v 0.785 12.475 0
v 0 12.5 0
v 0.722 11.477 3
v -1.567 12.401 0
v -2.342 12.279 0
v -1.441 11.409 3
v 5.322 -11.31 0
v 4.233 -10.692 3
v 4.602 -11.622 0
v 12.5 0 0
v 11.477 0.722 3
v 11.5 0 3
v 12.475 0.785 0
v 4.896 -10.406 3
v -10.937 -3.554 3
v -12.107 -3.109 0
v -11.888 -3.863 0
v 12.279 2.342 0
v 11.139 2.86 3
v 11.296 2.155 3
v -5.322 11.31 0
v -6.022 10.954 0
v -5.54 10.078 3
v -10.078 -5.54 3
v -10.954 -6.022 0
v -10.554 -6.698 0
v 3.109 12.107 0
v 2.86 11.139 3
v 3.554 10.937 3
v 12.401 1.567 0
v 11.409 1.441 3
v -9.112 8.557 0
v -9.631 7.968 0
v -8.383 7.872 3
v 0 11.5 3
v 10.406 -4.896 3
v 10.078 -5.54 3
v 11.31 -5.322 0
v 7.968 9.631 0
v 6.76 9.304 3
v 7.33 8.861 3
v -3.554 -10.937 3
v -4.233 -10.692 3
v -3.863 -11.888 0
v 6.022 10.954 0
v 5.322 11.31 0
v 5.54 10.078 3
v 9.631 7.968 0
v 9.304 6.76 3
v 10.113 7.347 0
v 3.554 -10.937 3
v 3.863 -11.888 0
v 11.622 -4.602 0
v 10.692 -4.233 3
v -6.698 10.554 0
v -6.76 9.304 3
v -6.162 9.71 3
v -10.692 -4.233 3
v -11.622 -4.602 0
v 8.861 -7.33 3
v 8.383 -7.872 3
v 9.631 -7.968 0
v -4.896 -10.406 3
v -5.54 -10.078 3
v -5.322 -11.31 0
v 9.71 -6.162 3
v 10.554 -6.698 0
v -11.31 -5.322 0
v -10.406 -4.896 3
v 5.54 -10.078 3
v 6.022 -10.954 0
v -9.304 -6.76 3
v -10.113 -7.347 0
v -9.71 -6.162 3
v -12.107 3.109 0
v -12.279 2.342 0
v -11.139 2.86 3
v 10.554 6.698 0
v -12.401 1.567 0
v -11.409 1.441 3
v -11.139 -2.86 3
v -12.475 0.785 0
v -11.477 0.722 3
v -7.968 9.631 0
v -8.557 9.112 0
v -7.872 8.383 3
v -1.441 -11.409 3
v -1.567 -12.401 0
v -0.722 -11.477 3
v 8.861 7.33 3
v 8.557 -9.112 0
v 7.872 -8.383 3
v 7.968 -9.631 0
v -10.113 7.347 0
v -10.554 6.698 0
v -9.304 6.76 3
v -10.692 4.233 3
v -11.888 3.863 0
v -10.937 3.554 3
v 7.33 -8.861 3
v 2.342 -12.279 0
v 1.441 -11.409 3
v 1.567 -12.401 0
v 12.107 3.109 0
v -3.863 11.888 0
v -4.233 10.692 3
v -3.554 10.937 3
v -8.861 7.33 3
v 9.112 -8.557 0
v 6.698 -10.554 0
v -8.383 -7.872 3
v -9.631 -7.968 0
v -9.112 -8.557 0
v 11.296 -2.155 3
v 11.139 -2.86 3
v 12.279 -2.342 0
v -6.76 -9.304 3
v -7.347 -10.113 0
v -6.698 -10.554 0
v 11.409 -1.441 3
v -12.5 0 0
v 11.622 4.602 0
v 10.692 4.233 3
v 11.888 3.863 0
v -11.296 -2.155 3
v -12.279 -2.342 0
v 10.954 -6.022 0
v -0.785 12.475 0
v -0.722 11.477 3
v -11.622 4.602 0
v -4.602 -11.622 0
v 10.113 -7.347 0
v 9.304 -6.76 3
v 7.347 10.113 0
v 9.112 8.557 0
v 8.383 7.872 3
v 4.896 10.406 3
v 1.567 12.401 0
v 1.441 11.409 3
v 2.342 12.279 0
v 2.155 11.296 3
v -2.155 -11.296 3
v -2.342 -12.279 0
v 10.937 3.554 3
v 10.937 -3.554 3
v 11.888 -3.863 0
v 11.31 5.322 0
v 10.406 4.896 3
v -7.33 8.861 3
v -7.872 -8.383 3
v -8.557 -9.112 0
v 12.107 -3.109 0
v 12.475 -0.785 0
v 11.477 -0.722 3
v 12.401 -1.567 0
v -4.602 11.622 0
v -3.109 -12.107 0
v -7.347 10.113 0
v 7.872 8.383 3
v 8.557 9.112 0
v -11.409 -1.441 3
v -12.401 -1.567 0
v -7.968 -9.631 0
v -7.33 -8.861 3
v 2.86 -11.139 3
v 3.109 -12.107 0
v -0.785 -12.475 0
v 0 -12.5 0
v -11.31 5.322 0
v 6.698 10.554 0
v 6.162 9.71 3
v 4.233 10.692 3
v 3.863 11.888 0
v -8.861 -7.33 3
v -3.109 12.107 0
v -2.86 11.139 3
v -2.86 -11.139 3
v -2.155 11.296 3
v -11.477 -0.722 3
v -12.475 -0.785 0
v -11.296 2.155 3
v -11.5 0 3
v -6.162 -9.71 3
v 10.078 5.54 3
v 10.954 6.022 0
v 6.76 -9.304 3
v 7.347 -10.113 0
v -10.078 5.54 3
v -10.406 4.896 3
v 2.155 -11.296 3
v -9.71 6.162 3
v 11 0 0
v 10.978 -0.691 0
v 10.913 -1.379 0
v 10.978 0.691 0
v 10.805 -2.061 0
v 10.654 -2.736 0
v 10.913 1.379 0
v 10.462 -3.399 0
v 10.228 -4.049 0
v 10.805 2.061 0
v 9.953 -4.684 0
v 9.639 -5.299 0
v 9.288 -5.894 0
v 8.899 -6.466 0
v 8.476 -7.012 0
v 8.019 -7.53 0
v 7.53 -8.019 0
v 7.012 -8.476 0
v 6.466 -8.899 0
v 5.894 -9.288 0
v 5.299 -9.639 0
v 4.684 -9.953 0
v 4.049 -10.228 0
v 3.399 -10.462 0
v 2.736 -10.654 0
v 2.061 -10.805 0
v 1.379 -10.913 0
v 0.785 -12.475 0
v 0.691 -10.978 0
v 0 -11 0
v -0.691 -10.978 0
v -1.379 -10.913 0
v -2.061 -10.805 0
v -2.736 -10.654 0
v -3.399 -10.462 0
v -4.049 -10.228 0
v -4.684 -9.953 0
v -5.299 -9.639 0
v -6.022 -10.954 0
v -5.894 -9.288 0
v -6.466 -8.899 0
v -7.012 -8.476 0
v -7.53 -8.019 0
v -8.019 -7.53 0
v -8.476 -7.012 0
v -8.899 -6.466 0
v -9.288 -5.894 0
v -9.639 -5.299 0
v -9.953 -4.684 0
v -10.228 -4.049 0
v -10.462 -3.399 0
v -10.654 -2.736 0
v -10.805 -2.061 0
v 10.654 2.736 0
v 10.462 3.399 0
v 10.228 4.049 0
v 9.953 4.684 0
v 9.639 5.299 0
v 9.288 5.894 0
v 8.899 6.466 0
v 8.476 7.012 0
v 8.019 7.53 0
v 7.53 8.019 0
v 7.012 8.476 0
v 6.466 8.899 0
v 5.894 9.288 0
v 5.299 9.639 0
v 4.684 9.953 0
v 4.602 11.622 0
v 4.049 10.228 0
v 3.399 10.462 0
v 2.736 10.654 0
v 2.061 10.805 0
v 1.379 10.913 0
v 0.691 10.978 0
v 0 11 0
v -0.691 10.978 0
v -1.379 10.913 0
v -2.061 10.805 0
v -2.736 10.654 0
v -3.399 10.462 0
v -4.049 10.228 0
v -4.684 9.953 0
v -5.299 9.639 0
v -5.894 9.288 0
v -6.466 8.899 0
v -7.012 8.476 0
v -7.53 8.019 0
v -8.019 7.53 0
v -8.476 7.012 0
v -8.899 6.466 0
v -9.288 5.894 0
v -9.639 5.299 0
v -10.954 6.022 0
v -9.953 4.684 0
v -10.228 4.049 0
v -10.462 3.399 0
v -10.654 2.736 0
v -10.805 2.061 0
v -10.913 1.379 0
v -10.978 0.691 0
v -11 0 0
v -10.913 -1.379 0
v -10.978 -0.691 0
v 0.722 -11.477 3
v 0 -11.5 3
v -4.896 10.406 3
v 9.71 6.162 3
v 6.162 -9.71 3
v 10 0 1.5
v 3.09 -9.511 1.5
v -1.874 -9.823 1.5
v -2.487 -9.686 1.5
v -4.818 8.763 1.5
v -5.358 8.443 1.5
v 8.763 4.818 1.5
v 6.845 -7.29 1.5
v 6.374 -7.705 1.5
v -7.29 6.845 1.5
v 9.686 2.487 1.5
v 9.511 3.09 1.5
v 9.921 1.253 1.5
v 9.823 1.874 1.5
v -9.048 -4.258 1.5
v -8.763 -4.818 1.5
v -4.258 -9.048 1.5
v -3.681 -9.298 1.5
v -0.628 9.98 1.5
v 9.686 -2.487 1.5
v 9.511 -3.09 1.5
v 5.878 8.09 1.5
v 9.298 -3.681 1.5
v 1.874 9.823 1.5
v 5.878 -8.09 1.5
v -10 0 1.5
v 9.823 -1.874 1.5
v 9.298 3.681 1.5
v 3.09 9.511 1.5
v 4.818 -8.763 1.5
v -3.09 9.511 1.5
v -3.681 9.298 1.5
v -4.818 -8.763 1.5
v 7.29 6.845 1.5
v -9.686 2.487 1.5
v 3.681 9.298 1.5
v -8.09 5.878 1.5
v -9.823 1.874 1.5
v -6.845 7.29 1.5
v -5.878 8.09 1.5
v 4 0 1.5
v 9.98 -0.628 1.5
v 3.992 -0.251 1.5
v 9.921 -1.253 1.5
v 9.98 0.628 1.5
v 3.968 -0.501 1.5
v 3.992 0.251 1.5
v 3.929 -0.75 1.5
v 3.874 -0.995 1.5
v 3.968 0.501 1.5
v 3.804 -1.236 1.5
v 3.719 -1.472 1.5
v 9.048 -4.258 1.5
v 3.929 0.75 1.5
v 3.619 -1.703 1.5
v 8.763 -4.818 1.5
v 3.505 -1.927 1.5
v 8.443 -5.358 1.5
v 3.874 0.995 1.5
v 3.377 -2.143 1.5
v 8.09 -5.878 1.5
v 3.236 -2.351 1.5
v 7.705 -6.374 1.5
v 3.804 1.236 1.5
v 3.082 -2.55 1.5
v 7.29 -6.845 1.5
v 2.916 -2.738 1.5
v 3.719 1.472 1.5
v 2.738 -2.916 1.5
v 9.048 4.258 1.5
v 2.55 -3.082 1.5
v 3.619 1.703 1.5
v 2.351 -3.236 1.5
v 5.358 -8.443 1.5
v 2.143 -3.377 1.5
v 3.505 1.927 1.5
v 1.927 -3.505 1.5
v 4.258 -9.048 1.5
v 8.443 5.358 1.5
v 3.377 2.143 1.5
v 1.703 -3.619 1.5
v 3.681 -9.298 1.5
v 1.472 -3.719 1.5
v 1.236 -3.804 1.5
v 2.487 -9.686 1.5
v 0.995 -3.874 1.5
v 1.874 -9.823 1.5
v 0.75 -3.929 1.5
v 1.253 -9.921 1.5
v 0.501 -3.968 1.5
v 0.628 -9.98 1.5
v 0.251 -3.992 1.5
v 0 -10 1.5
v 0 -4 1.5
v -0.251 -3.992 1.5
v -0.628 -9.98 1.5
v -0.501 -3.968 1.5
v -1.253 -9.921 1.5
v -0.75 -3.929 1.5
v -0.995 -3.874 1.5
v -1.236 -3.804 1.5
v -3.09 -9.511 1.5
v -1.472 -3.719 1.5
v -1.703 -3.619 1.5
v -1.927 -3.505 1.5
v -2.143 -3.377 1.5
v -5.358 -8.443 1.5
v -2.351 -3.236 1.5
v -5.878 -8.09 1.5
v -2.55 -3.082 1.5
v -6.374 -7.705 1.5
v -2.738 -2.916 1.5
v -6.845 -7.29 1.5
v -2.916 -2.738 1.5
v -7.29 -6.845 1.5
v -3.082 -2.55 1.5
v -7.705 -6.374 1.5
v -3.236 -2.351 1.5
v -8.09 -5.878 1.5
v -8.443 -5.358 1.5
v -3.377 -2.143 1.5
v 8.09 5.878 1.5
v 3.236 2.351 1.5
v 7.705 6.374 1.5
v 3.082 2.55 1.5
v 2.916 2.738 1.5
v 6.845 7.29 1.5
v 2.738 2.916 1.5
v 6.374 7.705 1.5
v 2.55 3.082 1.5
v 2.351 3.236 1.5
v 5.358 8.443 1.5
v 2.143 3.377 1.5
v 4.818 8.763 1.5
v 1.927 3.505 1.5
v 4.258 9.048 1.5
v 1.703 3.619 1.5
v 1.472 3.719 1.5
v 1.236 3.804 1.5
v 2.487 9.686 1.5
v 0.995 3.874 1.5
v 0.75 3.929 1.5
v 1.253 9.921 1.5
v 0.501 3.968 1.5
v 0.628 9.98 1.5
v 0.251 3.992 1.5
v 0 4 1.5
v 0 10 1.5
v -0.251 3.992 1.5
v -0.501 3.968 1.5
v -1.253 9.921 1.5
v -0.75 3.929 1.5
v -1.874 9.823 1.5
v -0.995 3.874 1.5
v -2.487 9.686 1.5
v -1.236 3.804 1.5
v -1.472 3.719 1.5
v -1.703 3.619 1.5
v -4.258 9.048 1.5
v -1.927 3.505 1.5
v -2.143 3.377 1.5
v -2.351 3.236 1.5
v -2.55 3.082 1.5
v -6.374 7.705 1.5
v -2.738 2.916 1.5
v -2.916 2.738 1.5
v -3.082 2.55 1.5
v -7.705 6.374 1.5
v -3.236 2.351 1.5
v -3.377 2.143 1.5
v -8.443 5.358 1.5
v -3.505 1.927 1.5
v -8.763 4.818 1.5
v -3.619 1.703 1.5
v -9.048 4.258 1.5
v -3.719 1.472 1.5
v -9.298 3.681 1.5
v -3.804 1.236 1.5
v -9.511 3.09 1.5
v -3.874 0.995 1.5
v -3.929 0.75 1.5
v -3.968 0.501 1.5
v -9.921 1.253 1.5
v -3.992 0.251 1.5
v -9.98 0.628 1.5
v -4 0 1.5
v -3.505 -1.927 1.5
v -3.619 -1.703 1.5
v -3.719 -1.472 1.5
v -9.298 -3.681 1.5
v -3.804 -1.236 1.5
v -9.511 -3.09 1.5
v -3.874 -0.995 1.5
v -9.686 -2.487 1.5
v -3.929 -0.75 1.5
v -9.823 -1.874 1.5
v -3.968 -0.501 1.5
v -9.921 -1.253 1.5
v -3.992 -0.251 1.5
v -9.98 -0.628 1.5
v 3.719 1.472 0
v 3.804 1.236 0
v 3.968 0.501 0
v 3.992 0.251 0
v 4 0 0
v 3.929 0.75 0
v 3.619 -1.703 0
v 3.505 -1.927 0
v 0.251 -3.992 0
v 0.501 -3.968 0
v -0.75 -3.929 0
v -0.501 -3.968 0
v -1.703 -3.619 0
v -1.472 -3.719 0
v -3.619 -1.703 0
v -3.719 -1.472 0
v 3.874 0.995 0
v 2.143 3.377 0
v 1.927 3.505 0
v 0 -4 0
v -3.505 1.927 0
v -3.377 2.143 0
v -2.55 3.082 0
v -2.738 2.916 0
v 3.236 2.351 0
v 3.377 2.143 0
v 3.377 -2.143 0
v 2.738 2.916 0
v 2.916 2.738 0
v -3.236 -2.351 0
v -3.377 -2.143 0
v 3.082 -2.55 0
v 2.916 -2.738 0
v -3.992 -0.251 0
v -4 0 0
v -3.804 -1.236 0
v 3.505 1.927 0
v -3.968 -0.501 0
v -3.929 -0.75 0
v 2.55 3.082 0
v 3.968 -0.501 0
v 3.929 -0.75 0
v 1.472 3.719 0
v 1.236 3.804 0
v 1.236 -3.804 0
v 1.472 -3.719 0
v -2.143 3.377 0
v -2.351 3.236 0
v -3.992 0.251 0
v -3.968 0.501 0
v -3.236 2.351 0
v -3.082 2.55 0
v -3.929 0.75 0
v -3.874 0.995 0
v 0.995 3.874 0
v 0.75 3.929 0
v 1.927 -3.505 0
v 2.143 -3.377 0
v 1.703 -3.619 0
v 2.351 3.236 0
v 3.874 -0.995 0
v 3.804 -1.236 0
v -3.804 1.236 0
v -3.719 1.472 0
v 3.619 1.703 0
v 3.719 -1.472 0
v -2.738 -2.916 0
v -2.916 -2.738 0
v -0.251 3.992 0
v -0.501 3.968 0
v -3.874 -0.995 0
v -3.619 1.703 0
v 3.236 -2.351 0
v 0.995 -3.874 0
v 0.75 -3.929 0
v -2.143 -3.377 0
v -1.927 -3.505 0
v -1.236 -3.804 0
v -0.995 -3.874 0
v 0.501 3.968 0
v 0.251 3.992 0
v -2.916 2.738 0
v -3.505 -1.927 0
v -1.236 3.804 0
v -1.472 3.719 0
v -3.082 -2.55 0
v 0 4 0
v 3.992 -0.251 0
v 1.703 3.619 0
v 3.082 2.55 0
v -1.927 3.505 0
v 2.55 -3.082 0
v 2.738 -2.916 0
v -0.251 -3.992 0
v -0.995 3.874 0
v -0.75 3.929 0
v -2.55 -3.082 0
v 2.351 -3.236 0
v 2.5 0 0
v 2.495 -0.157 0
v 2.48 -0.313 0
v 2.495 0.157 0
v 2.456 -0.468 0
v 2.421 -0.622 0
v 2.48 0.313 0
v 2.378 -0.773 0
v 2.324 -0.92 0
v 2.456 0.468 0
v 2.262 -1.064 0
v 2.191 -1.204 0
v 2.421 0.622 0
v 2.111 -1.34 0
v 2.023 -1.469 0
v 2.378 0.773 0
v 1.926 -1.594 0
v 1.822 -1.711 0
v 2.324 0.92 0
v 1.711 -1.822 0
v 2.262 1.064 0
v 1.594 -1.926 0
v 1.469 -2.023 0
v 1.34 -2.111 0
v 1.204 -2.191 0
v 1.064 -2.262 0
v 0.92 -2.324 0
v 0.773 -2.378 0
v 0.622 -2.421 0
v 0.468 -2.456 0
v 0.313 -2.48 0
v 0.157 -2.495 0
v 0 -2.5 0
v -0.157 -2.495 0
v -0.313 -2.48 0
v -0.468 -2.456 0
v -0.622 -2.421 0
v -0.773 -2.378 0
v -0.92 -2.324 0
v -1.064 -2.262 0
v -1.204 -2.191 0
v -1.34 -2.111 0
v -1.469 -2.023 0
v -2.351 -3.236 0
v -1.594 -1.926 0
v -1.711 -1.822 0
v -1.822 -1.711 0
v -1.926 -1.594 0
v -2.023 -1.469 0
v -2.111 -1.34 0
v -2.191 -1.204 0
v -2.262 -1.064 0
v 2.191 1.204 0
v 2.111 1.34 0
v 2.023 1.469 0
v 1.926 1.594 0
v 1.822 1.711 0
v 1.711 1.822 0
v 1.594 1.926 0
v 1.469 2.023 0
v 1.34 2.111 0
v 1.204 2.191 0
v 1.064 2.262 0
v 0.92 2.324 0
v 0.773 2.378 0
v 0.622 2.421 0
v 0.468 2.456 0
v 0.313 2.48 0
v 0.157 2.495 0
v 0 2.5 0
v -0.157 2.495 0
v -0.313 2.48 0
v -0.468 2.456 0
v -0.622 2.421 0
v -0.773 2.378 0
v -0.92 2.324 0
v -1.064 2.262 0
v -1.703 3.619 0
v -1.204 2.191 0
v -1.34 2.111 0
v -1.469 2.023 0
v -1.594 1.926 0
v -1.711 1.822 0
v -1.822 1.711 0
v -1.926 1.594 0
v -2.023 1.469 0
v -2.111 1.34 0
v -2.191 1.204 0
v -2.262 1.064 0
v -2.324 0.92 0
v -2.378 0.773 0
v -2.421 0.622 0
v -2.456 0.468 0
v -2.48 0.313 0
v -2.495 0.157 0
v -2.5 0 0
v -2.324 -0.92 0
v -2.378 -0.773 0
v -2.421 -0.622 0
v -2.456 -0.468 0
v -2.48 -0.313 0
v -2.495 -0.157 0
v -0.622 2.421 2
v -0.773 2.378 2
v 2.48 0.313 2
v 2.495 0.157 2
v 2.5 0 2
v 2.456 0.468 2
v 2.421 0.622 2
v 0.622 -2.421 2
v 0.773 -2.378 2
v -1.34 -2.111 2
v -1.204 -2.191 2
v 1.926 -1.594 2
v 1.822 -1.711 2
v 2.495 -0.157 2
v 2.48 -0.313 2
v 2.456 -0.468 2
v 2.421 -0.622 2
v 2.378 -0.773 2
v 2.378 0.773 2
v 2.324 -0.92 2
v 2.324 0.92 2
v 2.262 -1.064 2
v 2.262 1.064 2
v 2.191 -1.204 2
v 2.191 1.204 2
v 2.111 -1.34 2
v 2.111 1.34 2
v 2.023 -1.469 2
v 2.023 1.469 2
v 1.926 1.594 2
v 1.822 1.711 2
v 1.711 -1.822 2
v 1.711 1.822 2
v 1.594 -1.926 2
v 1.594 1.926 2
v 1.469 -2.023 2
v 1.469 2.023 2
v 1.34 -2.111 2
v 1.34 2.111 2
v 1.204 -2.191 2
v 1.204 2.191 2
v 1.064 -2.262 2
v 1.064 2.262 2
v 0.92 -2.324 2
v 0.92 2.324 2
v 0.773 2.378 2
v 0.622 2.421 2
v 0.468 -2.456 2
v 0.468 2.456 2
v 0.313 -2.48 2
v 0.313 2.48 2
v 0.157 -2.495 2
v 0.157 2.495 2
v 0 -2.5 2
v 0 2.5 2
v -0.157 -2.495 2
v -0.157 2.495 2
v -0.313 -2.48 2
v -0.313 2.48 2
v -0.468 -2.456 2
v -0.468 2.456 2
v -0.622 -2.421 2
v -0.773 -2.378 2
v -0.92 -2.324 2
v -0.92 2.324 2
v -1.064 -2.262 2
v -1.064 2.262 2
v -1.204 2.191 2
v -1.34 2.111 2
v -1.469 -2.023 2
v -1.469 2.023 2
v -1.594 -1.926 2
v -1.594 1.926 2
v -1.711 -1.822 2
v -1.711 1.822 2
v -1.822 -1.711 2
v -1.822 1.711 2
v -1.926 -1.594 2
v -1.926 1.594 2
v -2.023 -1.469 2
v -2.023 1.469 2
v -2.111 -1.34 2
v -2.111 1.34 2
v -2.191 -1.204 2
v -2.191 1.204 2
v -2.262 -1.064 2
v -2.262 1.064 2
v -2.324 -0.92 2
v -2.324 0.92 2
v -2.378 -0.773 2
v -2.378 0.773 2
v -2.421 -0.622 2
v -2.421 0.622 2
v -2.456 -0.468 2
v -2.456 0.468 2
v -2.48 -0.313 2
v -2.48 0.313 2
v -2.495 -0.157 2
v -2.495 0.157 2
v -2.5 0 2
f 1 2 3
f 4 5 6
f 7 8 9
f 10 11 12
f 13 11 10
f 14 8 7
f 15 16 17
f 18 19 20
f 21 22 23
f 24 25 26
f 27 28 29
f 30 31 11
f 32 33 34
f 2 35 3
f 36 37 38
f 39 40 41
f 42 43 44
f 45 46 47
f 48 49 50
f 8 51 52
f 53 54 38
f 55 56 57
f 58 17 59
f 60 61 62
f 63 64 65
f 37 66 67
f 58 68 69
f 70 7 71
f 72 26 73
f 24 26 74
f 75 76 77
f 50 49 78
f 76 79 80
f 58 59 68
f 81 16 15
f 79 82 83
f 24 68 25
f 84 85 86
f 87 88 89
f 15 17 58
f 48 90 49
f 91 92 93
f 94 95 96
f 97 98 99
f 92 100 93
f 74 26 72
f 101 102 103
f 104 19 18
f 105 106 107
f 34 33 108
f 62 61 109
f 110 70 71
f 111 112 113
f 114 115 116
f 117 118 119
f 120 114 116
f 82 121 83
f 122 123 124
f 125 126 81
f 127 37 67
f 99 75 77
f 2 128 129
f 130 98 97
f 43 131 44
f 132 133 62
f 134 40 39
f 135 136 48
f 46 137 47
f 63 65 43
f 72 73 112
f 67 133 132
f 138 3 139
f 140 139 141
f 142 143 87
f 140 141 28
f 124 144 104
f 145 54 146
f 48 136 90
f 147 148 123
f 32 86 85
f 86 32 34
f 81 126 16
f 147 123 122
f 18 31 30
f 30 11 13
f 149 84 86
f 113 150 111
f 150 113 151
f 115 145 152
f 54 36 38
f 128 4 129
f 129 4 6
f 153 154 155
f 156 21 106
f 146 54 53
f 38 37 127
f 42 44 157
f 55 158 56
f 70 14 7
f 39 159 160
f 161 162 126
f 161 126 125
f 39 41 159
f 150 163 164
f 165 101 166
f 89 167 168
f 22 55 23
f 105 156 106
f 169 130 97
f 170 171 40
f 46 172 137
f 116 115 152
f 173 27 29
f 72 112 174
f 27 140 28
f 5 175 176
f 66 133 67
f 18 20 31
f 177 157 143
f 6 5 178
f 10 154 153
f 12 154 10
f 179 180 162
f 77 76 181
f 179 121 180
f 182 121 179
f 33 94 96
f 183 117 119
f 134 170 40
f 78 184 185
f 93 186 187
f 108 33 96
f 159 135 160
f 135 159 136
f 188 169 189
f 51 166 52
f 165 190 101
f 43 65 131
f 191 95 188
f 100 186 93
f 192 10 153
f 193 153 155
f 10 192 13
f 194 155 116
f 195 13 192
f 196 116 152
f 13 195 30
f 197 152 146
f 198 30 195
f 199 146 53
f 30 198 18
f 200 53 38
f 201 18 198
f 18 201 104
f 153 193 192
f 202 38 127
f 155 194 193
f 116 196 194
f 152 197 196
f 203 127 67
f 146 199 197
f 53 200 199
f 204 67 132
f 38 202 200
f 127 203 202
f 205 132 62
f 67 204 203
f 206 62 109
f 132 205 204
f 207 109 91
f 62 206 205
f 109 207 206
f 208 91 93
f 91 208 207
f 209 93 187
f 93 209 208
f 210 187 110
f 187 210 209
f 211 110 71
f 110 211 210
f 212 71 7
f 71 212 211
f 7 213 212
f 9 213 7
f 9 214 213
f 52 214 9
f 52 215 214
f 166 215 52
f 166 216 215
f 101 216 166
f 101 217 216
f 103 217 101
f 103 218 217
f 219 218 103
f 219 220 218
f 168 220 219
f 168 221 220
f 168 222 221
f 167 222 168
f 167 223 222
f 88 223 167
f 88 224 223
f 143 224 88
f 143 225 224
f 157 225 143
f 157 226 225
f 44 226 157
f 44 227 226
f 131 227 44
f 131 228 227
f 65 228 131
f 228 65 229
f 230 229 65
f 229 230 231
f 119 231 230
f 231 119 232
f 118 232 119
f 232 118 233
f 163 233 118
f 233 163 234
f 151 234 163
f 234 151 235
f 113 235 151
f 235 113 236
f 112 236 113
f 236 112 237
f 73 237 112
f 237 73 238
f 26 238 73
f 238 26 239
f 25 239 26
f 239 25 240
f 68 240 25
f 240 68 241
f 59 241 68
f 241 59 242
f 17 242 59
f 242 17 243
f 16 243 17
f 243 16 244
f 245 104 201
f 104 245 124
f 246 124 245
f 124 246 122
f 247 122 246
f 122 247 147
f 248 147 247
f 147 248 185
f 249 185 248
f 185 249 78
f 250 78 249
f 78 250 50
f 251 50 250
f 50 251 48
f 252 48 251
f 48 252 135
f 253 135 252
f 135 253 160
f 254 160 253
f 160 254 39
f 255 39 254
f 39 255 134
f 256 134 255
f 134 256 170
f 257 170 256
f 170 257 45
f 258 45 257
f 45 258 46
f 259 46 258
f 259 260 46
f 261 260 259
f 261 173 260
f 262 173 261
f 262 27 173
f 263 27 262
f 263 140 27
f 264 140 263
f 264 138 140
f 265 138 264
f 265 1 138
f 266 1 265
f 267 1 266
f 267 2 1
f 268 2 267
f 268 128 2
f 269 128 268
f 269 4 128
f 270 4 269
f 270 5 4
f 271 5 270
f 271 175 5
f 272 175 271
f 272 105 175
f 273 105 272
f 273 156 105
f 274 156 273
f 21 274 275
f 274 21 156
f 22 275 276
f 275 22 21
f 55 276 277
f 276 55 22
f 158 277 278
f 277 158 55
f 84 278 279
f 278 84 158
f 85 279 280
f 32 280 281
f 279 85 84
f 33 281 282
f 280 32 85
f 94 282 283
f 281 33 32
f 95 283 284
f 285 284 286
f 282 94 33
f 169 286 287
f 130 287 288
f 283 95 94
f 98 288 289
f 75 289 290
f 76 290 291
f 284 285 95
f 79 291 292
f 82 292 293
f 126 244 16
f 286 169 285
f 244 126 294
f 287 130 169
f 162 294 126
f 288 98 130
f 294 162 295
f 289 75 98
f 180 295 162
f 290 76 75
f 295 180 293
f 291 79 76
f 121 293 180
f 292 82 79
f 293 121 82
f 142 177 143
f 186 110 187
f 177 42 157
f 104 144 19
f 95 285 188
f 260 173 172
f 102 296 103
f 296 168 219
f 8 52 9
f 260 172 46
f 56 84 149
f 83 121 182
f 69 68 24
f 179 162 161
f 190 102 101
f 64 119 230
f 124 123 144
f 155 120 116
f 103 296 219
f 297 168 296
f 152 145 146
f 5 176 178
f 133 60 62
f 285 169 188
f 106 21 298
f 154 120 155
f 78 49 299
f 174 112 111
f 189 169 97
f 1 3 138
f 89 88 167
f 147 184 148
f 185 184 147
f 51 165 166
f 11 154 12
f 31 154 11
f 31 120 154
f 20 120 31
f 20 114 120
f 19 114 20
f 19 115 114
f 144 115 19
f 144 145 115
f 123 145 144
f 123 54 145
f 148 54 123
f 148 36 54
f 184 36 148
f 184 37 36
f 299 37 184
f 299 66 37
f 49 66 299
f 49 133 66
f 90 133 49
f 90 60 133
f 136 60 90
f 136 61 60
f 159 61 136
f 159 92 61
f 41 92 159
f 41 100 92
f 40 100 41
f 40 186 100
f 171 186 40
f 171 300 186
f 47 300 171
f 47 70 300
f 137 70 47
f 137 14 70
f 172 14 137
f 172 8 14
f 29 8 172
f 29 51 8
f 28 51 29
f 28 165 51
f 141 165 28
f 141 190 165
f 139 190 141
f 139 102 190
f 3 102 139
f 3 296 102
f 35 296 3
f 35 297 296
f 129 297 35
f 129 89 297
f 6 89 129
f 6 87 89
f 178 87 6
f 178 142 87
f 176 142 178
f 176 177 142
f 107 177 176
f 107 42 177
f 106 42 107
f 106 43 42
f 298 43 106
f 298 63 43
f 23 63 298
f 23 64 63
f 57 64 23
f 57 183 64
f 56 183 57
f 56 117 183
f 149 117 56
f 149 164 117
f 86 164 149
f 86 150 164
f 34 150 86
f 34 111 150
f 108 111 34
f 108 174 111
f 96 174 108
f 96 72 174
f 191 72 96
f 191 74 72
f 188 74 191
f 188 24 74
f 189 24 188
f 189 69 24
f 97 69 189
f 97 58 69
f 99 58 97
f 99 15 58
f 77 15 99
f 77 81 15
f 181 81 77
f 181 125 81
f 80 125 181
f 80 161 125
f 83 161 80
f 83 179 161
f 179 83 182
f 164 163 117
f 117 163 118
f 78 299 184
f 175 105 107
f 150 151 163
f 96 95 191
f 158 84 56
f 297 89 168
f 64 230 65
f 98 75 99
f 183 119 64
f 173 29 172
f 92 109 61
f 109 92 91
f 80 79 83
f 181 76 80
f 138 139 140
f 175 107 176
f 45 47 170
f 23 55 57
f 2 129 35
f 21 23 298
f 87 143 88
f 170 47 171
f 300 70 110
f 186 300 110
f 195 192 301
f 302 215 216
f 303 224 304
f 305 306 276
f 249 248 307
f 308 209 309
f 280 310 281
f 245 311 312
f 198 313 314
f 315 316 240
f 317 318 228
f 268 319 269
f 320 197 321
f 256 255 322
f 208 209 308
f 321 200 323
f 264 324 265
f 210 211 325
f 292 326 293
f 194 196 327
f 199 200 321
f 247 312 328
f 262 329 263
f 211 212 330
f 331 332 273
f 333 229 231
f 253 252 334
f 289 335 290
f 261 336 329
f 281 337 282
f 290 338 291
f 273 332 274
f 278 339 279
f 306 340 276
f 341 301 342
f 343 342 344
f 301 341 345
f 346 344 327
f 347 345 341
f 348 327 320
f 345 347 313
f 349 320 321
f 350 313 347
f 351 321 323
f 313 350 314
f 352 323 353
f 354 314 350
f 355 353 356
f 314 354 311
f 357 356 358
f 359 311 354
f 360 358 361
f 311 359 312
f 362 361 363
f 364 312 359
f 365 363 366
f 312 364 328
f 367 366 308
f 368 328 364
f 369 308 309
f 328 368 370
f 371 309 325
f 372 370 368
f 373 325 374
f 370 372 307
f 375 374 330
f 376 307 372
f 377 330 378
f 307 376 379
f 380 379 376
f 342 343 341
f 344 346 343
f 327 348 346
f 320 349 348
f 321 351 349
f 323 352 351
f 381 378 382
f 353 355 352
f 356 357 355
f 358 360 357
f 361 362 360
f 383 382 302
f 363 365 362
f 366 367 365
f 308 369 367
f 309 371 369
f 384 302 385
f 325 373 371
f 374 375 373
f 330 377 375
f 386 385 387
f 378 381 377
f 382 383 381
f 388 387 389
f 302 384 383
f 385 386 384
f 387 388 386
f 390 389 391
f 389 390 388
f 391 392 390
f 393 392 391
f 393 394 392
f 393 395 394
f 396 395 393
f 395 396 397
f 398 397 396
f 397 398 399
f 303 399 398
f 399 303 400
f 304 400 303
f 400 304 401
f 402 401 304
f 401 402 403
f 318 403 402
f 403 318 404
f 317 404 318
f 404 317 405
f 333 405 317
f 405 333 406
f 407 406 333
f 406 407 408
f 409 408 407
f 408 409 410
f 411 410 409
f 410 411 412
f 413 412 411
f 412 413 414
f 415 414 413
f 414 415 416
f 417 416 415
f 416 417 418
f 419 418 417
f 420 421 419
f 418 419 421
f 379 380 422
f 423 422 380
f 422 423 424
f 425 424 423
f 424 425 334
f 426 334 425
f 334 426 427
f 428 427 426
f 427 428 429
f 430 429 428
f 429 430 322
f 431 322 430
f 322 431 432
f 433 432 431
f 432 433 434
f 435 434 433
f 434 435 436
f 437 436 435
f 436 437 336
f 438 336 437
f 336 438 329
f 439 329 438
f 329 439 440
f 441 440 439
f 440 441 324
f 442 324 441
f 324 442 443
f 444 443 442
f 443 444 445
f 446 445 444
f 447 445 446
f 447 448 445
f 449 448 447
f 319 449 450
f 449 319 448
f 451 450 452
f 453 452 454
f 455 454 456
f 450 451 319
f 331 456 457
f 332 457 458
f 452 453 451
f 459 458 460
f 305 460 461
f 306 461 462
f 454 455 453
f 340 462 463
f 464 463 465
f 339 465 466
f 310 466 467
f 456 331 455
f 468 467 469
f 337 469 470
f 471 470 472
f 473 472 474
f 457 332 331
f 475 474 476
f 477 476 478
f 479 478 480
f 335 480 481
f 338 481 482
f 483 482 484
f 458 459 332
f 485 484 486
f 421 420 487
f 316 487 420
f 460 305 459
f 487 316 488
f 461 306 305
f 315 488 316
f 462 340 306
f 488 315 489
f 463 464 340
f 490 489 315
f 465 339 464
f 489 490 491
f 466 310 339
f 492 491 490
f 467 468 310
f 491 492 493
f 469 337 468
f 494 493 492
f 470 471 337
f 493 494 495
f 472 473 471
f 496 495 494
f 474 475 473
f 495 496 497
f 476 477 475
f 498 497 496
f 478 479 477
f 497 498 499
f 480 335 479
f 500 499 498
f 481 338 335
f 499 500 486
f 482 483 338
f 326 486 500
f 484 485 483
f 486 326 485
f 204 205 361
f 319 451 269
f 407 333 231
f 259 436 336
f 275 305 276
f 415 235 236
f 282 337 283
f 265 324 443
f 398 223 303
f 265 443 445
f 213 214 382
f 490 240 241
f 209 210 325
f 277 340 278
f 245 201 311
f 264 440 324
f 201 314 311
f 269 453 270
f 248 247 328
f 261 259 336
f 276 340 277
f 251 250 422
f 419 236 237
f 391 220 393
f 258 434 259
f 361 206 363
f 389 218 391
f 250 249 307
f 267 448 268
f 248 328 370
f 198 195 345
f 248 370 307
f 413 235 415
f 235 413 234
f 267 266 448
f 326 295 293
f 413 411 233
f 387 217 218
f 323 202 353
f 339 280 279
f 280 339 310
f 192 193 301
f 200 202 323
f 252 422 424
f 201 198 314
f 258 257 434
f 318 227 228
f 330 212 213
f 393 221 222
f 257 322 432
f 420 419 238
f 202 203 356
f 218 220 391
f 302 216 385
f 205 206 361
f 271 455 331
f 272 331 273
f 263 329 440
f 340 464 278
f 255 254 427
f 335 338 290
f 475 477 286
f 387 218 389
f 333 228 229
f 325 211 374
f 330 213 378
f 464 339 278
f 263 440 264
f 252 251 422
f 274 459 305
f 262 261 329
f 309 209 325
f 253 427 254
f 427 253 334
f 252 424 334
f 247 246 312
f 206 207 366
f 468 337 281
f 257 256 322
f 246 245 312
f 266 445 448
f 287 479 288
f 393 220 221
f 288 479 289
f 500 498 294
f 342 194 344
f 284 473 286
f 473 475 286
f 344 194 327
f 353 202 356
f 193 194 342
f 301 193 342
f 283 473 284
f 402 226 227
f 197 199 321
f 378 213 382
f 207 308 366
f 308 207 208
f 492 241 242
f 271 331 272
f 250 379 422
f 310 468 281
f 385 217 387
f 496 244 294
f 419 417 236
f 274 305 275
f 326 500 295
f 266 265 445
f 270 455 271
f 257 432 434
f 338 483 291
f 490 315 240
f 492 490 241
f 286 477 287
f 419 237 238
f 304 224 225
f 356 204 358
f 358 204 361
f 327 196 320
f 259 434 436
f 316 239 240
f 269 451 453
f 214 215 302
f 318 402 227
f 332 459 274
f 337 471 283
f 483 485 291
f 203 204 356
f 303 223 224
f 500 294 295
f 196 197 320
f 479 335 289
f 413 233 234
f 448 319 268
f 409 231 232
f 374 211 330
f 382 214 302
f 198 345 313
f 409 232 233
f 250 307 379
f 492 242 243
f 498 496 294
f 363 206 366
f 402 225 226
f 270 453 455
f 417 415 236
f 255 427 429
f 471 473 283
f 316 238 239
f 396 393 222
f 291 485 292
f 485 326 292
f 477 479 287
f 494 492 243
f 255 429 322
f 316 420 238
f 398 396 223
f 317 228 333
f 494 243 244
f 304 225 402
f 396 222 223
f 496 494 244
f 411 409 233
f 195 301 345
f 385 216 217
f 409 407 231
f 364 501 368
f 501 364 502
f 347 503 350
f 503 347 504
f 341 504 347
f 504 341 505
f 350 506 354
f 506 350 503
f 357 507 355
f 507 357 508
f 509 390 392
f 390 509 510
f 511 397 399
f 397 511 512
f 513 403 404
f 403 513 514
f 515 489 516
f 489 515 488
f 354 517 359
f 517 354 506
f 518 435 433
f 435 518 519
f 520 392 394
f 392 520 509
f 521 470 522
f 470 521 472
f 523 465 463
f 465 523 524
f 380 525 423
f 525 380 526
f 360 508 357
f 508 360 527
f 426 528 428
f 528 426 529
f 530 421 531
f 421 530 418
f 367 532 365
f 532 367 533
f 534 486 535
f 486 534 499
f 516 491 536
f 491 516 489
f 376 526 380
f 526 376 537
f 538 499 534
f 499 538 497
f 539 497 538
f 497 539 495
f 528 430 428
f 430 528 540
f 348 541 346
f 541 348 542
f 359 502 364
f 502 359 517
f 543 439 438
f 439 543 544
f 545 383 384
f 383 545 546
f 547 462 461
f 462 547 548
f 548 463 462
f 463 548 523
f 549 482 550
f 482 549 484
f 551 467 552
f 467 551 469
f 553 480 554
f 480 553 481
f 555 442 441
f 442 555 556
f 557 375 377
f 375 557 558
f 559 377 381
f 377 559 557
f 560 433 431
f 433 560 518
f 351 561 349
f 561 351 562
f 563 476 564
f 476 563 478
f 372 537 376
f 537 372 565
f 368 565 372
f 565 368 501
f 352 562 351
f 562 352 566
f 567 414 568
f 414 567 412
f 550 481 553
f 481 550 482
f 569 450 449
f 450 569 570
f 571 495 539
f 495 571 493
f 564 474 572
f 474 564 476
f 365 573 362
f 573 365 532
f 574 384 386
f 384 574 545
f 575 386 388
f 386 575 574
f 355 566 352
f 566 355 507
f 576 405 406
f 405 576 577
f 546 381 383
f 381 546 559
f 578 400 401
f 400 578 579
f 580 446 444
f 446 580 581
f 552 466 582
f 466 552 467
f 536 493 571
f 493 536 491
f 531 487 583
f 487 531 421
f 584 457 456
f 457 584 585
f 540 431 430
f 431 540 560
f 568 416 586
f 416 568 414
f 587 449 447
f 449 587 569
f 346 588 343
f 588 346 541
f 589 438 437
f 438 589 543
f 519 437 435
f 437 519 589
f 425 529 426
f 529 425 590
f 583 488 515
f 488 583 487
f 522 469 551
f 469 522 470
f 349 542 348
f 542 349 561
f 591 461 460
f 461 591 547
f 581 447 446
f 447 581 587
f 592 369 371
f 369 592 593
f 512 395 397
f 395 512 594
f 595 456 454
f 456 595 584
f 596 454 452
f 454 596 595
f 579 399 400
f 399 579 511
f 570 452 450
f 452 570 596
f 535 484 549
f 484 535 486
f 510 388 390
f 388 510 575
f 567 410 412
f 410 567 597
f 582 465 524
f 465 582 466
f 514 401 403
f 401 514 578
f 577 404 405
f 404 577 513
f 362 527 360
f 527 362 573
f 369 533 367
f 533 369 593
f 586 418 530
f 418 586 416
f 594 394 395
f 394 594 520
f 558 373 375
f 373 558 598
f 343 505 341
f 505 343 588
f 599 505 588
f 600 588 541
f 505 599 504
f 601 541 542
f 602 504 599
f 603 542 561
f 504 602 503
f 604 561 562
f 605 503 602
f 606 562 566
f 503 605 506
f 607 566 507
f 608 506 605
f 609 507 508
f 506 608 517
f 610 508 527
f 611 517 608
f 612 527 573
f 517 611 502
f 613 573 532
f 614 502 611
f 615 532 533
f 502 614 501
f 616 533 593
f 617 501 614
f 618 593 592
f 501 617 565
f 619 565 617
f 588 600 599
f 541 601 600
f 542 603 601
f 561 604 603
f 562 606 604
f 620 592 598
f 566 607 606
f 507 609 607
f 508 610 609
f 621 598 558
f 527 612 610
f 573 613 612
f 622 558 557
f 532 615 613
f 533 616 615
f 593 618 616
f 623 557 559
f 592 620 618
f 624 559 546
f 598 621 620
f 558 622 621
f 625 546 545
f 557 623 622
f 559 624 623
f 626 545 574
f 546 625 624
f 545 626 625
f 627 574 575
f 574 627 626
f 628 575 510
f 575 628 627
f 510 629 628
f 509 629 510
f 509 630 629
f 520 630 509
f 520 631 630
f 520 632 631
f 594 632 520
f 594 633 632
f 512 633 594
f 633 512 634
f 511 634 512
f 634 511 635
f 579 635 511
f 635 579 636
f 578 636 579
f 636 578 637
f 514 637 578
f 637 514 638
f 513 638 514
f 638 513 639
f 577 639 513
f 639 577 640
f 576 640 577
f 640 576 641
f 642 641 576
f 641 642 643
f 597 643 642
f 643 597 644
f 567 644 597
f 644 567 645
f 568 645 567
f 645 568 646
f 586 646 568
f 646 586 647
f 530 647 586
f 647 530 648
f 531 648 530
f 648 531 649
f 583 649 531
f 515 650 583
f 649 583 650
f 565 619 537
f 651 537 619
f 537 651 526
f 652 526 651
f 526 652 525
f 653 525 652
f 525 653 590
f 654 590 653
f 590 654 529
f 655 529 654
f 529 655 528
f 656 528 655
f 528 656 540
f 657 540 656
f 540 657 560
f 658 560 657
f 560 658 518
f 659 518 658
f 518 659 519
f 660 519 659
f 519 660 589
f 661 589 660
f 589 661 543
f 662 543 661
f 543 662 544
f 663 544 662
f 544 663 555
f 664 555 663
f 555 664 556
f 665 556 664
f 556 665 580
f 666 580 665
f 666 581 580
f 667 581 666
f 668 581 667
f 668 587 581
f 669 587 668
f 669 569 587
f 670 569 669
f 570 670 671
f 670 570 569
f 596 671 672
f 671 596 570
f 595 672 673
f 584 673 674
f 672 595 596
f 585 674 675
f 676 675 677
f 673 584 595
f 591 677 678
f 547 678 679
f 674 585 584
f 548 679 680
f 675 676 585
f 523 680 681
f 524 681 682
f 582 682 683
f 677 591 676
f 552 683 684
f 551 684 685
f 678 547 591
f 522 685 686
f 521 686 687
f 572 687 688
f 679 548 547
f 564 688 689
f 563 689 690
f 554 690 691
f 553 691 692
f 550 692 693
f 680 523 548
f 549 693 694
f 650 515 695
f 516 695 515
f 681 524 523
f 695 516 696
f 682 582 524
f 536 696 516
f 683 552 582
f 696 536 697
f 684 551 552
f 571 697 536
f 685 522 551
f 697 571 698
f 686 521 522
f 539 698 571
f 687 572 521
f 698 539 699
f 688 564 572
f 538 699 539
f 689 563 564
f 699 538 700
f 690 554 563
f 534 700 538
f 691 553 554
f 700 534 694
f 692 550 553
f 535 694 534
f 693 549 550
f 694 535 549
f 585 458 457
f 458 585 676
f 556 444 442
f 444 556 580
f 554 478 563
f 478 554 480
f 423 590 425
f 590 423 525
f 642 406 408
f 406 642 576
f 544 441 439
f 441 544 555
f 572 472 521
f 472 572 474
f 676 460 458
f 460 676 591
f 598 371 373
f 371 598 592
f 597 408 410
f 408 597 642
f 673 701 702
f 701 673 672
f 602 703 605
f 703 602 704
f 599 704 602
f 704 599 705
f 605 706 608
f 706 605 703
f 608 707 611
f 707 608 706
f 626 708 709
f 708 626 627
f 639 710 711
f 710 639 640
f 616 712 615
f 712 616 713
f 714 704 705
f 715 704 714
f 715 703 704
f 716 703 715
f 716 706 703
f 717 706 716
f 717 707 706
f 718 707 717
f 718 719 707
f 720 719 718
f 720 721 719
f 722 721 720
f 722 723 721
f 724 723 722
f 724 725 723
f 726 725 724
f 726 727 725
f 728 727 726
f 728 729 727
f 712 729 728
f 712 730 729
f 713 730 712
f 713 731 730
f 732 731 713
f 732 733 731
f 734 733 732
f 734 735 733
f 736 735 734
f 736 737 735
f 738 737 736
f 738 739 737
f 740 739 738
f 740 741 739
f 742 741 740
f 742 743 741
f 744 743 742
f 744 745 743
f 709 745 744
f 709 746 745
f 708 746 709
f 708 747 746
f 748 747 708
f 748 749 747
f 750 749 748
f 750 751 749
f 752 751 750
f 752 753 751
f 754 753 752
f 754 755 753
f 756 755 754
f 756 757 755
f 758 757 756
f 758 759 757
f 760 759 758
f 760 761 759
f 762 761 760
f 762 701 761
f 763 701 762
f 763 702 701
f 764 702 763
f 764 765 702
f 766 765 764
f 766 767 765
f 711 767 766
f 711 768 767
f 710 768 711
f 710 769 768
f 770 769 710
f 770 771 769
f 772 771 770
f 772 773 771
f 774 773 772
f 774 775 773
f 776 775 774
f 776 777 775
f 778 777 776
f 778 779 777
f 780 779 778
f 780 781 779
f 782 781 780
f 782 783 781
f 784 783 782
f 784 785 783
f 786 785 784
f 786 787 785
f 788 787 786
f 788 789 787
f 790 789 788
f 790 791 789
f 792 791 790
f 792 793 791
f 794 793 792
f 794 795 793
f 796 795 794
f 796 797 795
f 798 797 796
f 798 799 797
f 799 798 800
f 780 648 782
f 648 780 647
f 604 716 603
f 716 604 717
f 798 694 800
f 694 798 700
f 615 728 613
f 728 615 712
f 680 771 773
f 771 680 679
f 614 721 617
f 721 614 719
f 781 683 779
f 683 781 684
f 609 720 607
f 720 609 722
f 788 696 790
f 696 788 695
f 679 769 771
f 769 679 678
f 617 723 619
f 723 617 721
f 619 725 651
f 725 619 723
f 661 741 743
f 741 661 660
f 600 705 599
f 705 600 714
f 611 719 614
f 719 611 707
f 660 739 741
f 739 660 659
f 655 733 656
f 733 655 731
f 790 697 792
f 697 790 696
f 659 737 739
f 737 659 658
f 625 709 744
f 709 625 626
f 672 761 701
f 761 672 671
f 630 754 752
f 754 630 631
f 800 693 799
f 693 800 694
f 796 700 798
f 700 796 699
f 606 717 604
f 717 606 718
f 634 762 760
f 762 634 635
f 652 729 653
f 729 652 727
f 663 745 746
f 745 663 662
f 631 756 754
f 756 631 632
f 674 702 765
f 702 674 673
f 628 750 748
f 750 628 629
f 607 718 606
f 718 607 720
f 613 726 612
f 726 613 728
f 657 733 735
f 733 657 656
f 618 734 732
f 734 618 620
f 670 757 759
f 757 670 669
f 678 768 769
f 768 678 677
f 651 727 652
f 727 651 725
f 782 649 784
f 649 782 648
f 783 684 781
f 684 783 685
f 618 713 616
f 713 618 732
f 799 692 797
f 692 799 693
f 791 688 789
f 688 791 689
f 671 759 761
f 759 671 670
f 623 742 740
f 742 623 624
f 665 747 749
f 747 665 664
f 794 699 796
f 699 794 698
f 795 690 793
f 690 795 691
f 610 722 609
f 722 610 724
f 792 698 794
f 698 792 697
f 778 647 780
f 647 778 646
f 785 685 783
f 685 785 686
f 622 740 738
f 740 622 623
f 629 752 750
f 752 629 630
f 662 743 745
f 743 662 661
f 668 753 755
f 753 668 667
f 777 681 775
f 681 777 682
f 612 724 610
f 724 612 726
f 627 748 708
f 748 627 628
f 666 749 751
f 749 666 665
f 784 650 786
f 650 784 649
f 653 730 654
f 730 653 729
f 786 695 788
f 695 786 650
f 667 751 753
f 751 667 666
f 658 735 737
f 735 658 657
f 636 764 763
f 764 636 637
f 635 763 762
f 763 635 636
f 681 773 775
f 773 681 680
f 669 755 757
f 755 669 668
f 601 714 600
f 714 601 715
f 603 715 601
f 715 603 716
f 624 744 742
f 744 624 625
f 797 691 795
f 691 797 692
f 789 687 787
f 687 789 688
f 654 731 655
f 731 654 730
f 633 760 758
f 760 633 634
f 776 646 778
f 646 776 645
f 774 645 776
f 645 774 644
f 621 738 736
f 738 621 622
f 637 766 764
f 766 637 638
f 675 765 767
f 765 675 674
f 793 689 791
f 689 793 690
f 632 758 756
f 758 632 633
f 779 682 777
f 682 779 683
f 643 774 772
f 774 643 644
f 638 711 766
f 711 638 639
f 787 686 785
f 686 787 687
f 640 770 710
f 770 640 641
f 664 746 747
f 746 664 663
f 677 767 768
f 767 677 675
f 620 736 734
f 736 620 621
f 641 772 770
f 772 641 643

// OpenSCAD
// all dimensions in mm
bottomRadius = 12.5;
topRadius = bottomRadius-1;
depth = 3;
thickness = depth/2;
magnetRadius = 2.5;
magnetDepth = 2;

// base
difference(){
    union(){
        difference(){
        cylinder(h = depth, r1 = bottomRadius, r2= topRadius, $fn = 100);
        cylinder(h = depth - thickness, r1 = bottomRadius-thickness, r2= topRadius-thickness, $fn = 100);
        }
            cylinder(h=magnetDepth,r=magnetRadius+thickness, $fn = 100);
        }
    cylinder(h=magnetDepth,r=magnetRadius, $fn = 100);
};
